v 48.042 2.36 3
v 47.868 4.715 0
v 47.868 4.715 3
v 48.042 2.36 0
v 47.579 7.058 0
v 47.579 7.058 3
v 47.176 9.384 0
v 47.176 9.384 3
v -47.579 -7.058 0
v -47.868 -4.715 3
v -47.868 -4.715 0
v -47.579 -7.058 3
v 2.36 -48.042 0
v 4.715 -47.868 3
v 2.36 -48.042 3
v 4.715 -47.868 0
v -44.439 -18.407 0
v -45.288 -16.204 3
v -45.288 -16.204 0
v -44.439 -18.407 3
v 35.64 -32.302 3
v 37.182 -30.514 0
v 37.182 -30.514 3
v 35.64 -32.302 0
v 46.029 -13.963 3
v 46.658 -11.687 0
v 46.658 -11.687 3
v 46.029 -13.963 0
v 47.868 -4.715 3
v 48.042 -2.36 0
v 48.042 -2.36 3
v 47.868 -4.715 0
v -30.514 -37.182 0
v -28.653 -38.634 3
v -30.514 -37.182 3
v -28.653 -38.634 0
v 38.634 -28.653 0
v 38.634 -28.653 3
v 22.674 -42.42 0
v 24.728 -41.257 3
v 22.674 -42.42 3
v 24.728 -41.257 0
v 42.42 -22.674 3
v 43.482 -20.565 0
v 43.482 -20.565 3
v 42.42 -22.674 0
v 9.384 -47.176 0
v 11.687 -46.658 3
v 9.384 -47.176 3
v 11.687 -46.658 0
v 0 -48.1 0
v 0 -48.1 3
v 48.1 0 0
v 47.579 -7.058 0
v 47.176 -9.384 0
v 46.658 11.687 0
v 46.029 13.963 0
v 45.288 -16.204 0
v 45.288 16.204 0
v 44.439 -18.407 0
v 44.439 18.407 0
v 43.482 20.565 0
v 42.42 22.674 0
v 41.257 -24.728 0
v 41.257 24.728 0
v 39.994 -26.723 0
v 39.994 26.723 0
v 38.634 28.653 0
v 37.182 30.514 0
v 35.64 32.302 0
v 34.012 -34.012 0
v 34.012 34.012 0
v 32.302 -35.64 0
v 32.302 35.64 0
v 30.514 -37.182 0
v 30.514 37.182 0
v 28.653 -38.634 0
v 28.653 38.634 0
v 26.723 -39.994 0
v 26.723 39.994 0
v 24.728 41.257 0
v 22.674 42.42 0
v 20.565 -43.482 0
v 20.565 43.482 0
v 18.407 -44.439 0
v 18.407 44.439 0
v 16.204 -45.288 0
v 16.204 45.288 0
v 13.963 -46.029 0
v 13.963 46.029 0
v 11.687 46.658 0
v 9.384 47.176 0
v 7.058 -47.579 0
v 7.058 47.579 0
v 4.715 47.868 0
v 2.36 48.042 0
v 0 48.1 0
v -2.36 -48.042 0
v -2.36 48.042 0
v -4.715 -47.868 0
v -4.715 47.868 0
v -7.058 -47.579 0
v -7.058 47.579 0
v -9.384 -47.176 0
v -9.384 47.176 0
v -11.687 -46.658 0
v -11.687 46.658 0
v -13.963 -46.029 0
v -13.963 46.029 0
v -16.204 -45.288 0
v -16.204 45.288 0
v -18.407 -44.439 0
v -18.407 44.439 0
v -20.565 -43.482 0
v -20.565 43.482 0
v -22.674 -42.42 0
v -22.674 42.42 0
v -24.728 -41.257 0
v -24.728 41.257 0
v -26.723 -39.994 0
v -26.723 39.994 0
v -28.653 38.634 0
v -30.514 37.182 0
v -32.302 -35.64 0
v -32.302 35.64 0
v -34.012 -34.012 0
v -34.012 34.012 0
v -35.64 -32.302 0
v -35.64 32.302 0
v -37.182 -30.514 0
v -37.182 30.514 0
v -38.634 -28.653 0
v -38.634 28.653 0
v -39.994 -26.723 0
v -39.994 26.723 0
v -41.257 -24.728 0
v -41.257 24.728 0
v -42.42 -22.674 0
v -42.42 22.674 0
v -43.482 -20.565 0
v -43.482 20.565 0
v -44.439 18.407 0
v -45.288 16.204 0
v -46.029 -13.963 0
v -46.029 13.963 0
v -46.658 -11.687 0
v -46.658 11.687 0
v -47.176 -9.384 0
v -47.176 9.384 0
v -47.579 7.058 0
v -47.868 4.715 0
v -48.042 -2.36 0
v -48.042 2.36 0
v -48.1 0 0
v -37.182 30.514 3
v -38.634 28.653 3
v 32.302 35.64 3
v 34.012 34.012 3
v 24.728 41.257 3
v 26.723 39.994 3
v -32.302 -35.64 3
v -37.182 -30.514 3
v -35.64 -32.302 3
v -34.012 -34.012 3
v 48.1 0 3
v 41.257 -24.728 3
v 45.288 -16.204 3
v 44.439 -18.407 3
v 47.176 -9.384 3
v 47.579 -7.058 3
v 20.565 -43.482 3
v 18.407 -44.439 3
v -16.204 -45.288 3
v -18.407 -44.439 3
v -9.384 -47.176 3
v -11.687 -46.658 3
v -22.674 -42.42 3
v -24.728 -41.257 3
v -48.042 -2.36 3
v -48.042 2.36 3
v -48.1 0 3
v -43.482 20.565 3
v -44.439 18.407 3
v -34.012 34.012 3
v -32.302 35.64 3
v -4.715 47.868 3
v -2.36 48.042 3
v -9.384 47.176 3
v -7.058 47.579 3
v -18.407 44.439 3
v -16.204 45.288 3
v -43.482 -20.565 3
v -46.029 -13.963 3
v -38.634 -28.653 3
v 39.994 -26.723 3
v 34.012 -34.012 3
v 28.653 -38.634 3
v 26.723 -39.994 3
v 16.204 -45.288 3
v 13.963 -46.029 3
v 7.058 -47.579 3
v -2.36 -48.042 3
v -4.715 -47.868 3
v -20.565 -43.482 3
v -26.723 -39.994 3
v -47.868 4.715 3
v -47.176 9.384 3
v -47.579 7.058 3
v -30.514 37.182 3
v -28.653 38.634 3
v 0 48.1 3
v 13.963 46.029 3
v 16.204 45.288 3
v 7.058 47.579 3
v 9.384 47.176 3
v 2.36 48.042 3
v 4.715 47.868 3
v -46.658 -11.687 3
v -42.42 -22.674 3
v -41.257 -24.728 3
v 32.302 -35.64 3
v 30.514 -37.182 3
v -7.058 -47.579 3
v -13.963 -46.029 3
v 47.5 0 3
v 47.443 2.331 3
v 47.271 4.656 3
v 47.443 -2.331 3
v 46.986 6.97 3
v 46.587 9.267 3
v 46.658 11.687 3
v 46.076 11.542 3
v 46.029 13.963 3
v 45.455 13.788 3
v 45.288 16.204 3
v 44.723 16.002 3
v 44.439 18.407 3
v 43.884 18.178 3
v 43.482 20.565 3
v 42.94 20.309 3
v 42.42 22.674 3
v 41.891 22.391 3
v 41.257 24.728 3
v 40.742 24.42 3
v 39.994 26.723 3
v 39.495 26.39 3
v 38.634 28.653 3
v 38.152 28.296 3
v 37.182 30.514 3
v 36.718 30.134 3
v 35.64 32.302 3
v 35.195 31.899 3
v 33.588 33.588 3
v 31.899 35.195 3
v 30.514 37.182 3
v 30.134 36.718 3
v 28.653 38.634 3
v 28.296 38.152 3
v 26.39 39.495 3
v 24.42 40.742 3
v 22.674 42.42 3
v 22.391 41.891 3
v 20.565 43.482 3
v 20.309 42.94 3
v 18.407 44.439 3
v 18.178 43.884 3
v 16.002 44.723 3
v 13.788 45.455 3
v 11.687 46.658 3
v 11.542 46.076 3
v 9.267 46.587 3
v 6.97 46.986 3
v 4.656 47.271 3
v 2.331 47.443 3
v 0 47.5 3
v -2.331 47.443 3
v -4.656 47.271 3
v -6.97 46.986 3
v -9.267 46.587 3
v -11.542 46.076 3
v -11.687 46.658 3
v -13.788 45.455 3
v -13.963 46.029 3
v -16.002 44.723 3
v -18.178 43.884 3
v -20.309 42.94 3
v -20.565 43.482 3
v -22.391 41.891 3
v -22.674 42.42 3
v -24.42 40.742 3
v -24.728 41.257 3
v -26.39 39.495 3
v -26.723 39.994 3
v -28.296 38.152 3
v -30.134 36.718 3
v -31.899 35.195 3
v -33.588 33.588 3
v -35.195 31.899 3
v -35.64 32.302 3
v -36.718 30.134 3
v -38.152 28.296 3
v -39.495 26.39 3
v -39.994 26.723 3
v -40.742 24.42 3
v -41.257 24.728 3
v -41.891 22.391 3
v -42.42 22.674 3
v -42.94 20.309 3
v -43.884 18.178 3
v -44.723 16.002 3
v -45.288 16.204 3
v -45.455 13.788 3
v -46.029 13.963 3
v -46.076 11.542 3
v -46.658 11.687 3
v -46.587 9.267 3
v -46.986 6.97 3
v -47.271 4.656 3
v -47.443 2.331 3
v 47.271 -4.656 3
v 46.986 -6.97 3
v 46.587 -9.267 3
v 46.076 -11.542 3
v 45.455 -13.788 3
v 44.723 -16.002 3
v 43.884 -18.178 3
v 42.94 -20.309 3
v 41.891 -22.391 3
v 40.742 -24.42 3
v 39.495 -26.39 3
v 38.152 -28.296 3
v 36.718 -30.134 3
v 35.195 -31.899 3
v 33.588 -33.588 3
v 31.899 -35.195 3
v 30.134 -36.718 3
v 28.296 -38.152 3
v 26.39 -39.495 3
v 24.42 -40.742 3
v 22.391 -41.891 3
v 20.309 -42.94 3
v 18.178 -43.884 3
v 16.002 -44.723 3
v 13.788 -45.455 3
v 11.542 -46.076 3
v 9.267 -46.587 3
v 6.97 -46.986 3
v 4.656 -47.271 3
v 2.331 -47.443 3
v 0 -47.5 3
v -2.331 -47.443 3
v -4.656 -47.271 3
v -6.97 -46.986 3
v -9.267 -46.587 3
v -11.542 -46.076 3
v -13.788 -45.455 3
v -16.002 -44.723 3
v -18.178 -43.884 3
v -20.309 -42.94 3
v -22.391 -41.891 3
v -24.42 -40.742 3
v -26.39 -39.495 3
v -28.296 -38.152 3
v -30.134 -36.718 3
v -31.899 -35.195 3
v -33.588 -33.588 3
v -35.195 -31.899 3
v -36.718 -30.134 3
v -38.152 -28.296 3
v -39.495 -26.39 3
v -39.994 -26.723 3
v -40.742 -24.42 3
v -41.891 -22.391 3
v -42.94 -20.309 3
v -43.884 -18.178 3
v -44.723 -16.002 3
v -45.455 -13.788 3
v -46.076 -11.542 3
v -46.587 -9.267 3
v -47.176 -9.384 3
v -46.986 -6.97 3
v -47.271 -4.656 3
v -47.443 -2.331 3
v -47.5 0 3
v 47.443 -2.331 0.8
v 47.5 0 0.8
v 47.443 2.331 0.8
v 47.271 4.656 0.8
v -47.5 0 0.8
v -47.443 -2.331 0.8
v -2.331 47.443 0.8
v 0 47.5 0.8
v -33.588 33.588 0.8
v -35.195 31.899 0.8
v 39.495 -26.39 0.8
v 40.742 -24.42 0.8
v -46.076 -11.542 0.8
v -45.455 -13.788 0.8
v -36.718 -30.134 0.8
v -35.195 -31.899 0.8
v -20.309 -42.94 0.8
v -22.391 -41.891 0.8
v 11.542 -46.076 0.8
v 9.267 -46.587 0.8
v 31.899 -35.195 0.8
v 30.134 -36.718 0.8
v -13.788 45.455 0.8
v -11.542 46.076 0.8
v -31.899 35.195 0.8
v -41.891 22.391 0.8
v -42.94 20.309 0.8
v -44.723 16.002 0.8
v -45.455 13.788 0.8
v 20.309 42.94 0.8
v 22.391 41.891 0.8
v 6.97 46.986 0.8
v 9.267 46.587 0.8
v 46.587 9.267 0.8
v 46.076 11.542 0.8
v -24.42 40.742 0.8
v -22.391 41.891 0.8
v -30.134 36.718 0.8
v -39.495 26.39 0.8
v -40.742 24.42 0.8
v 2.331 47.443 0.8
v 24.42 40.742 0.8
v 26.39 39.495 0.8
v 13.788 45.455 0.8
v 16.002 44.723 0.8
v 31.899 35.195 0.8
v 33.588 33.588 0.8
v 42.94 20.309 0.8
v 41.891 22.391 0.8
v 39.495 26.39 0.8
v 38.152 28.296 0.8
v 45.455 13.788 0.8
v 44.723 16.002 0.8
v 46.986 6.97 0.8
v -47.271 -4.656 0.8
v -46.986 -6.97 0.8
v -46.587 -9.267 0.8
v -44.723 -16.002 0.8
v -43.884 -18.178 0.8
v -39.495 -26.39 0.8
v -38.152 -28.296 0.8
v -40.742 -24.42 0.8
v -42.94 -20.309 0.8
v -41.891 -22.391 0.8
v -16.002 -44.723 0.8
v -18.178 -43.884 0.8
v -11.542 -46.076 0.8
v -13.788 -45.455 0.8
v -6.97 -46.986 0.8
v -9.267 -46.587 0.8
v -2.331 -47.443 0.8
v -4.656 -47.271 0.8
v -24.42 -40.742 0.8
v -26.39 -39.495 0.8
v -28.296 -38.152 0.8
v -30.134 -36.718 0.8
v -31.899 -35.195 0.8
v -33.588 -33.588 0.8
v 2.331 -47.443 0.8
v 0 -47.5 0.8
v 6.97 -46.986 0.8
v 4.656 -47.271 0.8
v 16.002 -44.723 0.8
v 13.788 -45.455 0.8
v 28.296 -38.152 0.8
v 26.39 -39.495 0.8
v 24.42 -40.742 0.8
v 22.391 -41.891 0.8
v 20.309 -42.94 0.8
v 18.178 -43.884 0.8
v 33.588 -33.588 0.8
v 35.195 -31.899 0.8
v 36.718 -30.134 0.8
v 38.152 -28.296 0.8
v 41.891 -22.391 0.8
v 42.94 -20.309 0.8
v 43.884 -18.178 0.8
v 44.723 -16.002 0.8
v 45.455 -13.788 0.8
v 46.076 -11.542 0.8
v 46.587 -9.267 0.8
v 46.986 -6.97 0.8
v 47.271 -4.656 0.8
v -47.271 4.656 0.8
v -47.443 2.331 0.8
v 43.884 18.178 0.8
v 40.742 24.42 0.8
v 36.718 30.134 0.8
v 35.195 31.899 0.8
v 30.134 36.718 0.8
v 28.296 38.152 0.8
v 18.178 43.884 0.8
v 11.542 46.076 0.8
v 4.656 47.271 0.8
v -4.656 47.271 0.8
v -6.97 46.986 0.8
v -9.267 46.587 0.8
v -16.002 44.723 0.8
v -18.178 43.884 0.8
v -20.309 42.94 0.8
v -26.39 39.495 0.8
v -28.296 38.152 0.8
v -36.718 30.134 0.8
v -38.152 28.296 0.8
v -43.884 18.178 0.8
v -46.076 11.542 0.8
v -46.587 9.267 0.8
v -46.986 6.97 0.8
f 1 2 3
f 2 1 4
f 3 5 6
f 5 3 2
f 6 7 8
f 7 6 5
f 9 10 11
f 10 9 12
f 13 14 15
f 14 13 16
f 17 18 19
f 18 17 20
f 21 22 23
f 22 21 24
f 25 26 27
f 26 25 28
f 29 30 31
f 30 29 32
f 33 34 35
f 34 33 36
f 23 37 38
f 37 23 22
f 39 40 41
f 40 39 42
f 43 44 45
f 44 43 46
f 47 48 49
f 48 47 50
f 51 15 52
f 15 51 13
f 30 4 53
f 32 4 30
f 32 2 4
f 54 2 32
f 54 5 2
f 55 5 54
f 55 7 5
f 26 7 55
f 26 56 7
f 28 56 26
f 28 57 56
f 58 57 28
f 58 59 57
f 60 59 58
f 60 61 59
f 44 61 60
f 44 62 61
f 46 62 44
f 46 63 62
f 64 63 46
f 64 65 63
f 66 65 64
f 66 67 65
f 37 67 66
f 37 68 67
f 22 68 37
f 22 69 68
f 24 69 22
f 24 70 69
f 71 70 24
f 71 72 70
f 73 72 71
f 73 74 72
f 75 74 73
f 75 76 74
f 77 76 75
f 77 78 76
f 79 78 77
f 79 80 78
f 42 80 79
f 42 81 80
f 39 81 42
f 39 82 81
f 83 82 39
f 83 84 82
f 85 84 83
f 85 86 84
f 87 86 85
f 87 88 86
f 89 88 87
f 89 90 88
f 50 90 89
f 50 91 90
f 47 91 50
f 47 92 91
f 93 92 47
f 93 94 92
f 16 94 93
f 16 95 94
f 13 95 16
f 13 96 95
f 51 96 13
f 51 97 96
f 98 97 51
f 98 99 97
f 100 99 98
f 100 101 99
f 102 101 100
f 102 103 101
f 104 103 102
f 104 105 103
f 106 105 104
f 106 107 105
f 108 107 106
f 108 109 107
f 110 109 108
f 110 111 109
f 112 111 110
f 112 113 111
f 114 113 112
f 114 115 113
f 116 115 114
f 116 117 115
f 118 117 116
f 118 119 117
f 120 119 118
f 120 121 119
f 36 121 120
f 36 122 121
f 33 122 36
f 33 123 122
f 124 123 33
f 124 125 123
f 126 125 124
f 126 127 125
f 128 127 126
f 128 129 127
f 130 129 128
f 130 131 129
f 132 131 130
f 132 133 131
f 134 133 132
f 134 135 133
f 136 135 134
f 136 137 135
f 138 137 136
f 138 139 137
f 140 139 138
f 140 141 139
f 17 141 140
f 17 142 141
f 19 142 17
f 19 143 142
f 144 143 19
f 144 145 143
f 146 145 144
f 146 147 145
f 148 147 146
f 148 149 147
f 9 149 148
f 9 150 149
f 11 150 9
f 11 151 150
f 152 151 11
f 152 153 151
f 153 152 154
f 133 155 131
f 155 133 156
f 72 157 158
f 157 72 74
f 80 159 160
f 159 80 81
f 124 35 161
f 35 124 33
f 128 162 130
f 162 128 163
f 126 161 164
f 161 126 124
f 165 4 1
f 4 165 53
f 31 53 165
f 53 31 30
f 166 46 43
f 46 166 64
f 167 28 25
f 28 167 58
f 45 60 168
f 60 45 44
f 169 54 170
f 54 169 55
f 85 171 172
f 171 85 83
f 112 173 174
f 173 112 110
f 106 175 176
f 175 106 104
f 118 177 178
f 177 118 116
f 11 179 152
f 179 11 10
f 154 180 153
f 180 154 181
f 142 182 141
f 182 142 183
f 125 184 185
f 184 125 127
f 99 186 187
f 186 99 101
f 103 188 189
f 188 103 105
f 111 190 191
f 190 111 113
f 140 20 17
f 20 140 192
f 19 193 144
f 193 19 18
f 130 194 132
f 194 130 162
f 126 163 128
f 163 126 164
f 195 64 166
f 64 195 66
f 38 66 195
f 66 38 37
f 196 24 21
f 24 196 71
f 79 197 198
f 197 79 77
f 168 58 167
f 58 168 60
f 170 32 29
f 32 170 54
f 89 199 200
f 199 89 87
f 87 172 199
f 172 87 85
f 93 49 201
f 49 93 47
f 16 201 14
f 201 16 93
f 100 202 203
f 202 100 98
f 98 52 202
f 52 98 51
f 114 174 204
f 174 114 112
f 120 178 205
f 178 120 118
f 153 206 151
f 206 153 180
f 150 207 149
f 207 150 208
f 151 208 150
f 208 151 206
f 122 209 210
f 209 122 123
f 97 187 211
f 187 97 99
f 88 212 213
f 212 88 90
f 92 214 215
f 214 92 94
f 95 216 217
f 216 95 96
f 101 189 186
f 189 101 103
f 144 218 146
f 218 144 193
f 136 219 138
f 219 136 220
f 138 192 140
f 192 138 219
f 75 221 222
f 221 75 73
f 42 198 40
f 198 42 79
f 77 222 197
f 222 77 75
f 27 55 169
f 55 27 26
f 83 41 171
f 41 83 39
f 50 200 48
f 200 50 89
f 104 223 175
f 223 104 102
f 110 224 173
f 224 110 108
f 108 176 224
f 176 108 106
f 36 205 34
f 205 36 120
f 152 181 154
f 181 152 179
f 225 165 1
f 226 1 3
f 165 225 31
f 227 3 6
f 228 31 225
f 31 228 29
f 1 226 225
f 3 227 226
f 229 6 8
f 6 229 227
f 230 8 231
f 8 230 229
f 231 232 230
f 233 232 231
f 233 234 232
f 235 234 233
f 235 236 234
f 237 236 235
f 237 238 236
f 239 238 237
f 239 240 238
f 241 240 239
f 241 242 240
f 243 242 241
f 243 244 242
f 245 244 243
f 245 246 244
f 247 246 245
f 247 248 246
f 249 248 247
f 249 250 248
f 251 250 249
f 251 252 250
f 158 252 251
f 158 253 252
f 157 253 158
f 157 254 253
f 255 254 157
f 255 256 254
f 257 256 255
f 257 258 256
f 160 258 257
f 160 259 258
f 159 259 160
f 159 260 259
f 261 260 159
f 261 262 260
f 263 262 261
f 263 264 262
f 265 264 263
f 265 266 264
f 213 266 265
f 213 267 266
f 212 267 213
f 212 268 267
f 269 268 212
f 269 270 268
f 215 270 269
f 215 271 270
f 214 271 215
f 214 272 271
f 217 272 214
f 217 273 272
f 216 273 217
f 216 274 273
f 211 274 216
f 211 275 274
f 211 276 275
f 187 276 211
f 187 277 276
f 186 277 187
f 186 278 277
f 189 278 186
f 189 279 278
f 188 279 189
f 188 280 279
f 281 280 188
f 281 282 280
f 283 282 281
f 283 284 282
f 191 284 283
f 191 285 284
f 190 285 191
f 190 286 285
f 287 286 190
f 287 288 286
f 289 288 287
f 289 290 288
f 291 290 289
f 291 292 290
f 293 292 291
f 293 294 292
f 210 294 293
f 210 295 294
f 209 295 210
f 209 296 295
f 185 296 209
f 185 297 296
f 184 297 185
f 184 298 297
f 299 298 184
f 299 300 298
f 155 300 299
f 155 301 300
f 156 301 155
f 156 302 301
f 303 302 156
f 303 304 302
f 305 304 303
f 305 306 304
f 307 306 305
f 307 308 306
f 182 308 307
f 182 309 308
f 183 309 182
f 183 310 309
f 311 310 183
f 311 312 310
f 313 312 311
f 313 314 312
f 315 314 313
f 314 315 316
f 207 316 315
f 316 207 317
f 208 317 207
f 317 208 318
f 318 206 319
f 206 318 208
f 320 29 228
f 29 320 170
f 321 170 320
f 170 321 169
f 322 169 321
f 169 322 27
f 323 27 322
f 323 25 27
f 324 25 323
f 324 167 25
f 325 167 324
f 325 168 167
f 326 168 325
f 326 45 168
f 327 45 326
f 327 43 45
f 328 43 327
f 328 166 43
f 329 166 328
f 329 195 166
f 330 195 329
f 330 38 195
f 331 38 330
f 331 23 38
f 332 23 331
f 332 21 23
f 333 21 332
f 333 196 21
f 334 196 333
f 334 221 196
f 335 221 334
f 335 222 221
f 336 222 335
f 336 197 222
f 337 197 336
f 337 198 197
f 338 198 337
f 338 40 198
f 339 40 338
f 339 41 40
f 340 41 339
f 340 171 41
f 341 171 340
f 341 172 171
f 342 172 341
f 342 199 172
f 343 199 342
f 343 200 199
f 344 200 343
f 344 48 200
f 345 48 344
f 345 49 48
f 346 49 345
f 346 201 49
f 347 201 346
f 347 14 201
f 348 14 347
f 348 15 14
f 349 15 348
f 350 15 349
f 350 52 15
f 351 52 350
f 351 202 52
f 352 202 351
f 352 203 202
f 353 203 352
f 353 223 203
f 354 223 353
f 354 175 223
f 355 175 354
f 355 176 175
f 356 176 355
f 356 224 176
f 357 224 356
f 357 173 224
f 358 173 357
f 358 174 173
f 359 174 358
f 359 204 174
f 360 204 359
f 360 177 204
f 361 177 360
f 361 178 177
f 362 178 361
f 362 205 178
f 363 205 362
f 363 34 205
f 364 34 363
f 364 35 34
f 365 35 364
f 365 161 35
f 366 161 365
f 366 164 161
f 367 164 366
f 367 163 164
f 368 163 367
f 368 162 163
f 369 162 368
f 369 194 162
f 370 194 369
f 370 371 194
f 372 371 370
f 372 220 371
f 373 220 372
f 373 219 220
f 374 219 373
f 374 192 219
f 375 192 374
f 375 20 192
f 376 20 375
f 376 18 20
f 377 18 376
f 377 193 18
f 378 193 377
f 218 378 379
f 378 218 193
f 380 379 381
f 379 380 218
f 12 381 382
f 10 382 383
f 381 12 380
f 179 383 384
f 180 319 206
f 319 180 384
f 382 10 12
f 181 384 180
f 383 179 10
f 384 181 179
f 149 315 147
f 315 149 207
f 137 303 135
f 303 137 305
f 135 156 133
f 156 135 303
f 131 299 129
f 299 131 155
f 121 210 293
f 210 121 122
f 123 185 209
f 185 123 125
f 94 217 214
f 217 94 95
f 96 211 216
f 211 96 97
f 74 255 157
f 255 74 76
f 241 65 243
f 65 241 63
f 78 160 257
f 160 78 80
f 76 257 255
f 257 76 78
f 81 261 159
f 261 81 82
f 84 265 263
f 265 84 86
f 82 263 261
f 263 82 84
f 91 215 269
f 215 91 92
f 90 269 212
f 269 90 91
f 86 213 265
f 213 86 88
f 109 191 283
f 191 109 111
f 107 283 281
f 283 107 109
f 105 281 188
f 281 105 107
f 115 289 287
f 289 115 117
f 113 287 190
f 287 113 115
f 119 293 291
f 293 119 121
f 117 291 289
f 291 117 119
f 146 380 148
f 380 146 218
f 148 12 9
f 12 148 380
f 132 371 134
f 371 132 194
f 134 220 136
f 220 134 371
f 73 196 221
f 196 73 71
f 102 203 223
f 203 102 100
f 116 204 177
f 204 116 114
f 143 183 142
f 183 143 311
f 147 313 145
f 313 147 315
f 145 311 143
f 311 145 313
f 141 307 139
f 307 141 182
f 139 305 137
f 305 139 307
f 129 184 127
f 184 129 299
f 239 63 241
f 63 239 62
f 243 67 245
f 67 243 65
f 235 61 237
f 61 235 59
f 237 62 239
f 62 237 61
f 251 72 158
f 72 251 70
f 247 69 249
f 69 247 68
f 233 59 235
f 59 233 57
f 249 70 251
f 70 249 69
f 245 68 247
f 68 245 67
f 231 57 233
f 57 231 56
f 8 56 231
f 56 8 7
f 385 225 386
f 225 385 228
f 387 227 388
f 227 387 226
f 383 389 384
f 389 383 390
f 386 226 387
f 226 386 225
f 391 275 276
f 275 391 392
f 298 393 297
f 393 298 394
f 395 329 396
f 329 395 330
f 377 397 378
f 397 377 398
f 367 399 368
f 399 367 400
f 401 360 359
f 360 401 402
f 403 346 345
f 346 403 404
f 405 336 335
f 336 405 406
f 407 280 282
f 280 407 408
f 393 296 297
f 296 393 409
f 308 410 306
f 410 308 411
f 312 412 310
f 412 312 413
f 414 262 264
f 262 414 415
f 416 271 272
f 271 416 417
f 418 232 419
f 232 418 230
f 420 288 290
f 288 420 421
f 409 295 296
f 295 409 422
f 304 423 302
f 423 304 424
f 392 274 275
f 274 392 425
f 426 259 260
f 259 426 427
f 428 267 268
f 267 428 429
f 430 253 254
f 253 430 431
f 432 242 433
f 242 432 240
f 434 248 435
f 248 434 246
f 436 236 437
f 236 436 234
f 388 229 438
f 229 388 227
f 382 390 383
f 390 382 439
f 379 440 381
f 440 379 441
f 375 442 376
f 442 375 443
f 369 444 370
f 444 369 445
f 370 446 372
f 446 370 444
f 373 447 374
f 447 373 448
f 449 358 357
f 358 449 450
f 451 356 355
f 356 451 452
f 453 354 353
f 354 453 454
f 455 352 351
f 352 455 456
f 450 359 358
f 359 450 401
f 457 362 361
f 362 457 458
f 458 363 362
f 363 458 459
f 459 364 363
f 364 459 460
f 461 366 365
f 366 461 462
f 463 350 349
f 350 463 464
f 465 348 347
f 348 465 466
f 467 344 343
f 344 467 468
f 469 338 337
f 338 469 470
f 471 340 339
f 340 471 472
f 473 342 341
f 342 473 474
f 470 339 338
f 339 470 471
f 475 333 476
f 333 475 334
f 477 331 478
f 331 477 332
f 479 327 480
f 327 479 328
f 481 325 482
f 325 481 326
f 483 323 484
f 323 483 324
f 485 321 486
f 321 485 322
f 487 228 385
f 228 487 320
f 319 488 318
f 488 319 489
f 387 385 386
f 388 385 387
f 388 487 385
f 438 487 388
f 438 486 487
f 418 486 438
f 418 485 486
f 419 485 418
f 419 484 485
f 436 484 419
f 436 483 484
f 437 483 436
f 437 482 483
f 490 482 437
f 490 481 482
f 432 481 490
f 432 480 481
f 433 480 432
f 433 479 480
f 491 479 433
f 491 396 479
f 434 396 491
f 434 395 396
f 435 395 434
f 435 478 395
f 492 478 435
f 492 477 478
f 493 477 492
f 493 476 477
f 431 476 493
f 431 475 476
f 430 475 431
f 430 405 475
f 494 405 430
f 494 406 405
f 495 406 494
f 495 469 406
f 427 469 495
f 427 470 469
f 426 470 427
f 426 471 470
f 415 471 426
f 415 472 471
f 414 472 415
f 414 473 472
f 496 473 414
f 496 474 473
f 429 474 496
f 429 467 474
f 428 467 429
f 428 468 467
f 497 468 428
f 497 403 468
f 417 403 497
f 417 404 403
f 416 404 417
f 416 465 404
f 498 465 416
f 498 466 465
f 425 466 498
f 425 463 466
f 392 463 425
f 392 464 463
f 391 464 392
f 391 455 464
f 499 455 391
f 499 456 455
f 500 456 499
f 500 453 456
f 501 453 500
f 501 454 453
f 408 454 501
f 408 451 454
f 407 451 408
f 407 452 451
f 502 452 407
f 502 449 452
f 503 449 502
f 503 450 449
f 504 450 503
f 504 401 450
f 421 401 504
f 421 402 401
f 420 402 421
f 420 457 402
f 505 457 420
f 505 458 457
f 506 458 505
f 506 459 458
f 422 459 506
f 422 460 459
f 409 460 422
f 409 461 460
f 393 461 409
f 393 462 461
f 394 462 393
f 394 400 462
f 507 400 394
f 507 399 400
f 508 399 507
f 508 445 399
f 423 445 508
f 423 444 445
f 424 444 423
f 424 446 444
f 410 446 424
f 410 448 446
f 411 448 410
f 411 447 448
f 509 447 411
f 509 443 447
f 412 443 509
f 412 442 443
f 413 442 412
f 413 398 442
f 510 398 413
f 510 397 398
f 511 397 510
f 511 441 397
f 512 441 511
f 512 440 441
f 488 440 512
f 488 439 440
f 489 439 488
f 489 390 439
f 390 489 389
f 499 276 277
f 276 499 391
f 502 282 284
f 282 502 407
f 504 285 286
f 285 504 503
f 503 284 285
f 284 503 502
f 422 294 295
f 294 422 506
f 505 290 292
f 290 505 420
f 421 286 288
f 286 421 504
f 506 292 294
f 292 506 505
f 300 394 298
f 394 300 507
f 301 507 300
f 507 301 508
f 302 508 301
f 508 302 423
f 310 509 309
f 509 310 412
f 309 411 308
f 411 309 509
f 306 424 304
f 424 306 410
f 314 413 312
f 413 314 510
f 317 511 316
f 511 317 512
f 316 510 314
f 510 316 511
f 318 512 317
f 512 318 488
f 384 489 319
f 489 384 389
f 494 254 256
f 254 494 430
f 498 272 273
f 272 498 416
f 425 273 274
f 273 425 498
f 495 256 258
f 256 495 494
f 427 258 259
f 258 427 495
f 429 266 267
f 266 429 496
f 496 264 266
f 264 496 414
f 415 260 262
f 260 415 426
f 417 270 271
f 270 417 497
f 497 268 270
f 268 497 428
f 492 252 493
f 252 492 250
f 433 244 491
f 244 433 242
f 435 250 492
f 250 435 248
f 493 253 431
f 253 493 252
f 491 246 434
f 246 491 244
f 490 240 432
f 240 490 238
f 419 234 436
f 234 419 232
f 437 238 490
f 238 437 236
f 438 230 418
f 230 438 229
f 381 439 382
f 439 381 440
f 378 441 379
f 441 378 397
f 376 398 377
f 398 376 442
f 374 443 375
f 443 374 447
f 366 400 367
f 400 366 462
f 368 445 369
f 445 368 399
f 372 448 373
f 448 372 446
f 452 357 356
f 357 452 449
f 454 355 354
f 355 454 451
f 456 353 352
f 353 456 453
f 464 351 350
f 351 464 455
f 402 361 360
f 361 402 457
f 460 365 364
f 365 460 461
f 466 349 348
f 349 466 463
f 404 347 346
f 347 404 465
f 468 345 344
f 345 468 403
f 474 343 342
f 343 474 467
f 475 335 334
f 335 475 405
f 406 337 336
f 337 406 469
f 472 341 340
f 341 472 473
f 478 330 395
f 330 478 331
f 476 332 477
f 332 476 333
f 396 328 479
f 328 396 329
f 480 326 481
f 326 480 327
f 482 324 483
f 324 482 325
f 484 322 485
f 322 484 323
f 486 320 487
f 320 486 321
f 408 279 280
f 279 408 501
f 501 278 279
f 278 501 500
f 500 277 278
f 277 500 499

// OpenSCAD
$fn = 128;

lid_h = 3;
lid_r = 95.00 / 2.00;

lid_wall_height = 3.00;
lid_wall_thickness = 1.20;
lid_solid_base_height = 0.80;

difference() {
    linear_extrude(lid_wall_height)
        circle(r = lid_r + (lid_wall_thickness / 2), center = true);
    
    translate([0, 0, lid_solid_base_height])
        linear_extrude(lid_wall_height - lid_solid_base_height)
        circle(r = lid_r, center = true);
}
